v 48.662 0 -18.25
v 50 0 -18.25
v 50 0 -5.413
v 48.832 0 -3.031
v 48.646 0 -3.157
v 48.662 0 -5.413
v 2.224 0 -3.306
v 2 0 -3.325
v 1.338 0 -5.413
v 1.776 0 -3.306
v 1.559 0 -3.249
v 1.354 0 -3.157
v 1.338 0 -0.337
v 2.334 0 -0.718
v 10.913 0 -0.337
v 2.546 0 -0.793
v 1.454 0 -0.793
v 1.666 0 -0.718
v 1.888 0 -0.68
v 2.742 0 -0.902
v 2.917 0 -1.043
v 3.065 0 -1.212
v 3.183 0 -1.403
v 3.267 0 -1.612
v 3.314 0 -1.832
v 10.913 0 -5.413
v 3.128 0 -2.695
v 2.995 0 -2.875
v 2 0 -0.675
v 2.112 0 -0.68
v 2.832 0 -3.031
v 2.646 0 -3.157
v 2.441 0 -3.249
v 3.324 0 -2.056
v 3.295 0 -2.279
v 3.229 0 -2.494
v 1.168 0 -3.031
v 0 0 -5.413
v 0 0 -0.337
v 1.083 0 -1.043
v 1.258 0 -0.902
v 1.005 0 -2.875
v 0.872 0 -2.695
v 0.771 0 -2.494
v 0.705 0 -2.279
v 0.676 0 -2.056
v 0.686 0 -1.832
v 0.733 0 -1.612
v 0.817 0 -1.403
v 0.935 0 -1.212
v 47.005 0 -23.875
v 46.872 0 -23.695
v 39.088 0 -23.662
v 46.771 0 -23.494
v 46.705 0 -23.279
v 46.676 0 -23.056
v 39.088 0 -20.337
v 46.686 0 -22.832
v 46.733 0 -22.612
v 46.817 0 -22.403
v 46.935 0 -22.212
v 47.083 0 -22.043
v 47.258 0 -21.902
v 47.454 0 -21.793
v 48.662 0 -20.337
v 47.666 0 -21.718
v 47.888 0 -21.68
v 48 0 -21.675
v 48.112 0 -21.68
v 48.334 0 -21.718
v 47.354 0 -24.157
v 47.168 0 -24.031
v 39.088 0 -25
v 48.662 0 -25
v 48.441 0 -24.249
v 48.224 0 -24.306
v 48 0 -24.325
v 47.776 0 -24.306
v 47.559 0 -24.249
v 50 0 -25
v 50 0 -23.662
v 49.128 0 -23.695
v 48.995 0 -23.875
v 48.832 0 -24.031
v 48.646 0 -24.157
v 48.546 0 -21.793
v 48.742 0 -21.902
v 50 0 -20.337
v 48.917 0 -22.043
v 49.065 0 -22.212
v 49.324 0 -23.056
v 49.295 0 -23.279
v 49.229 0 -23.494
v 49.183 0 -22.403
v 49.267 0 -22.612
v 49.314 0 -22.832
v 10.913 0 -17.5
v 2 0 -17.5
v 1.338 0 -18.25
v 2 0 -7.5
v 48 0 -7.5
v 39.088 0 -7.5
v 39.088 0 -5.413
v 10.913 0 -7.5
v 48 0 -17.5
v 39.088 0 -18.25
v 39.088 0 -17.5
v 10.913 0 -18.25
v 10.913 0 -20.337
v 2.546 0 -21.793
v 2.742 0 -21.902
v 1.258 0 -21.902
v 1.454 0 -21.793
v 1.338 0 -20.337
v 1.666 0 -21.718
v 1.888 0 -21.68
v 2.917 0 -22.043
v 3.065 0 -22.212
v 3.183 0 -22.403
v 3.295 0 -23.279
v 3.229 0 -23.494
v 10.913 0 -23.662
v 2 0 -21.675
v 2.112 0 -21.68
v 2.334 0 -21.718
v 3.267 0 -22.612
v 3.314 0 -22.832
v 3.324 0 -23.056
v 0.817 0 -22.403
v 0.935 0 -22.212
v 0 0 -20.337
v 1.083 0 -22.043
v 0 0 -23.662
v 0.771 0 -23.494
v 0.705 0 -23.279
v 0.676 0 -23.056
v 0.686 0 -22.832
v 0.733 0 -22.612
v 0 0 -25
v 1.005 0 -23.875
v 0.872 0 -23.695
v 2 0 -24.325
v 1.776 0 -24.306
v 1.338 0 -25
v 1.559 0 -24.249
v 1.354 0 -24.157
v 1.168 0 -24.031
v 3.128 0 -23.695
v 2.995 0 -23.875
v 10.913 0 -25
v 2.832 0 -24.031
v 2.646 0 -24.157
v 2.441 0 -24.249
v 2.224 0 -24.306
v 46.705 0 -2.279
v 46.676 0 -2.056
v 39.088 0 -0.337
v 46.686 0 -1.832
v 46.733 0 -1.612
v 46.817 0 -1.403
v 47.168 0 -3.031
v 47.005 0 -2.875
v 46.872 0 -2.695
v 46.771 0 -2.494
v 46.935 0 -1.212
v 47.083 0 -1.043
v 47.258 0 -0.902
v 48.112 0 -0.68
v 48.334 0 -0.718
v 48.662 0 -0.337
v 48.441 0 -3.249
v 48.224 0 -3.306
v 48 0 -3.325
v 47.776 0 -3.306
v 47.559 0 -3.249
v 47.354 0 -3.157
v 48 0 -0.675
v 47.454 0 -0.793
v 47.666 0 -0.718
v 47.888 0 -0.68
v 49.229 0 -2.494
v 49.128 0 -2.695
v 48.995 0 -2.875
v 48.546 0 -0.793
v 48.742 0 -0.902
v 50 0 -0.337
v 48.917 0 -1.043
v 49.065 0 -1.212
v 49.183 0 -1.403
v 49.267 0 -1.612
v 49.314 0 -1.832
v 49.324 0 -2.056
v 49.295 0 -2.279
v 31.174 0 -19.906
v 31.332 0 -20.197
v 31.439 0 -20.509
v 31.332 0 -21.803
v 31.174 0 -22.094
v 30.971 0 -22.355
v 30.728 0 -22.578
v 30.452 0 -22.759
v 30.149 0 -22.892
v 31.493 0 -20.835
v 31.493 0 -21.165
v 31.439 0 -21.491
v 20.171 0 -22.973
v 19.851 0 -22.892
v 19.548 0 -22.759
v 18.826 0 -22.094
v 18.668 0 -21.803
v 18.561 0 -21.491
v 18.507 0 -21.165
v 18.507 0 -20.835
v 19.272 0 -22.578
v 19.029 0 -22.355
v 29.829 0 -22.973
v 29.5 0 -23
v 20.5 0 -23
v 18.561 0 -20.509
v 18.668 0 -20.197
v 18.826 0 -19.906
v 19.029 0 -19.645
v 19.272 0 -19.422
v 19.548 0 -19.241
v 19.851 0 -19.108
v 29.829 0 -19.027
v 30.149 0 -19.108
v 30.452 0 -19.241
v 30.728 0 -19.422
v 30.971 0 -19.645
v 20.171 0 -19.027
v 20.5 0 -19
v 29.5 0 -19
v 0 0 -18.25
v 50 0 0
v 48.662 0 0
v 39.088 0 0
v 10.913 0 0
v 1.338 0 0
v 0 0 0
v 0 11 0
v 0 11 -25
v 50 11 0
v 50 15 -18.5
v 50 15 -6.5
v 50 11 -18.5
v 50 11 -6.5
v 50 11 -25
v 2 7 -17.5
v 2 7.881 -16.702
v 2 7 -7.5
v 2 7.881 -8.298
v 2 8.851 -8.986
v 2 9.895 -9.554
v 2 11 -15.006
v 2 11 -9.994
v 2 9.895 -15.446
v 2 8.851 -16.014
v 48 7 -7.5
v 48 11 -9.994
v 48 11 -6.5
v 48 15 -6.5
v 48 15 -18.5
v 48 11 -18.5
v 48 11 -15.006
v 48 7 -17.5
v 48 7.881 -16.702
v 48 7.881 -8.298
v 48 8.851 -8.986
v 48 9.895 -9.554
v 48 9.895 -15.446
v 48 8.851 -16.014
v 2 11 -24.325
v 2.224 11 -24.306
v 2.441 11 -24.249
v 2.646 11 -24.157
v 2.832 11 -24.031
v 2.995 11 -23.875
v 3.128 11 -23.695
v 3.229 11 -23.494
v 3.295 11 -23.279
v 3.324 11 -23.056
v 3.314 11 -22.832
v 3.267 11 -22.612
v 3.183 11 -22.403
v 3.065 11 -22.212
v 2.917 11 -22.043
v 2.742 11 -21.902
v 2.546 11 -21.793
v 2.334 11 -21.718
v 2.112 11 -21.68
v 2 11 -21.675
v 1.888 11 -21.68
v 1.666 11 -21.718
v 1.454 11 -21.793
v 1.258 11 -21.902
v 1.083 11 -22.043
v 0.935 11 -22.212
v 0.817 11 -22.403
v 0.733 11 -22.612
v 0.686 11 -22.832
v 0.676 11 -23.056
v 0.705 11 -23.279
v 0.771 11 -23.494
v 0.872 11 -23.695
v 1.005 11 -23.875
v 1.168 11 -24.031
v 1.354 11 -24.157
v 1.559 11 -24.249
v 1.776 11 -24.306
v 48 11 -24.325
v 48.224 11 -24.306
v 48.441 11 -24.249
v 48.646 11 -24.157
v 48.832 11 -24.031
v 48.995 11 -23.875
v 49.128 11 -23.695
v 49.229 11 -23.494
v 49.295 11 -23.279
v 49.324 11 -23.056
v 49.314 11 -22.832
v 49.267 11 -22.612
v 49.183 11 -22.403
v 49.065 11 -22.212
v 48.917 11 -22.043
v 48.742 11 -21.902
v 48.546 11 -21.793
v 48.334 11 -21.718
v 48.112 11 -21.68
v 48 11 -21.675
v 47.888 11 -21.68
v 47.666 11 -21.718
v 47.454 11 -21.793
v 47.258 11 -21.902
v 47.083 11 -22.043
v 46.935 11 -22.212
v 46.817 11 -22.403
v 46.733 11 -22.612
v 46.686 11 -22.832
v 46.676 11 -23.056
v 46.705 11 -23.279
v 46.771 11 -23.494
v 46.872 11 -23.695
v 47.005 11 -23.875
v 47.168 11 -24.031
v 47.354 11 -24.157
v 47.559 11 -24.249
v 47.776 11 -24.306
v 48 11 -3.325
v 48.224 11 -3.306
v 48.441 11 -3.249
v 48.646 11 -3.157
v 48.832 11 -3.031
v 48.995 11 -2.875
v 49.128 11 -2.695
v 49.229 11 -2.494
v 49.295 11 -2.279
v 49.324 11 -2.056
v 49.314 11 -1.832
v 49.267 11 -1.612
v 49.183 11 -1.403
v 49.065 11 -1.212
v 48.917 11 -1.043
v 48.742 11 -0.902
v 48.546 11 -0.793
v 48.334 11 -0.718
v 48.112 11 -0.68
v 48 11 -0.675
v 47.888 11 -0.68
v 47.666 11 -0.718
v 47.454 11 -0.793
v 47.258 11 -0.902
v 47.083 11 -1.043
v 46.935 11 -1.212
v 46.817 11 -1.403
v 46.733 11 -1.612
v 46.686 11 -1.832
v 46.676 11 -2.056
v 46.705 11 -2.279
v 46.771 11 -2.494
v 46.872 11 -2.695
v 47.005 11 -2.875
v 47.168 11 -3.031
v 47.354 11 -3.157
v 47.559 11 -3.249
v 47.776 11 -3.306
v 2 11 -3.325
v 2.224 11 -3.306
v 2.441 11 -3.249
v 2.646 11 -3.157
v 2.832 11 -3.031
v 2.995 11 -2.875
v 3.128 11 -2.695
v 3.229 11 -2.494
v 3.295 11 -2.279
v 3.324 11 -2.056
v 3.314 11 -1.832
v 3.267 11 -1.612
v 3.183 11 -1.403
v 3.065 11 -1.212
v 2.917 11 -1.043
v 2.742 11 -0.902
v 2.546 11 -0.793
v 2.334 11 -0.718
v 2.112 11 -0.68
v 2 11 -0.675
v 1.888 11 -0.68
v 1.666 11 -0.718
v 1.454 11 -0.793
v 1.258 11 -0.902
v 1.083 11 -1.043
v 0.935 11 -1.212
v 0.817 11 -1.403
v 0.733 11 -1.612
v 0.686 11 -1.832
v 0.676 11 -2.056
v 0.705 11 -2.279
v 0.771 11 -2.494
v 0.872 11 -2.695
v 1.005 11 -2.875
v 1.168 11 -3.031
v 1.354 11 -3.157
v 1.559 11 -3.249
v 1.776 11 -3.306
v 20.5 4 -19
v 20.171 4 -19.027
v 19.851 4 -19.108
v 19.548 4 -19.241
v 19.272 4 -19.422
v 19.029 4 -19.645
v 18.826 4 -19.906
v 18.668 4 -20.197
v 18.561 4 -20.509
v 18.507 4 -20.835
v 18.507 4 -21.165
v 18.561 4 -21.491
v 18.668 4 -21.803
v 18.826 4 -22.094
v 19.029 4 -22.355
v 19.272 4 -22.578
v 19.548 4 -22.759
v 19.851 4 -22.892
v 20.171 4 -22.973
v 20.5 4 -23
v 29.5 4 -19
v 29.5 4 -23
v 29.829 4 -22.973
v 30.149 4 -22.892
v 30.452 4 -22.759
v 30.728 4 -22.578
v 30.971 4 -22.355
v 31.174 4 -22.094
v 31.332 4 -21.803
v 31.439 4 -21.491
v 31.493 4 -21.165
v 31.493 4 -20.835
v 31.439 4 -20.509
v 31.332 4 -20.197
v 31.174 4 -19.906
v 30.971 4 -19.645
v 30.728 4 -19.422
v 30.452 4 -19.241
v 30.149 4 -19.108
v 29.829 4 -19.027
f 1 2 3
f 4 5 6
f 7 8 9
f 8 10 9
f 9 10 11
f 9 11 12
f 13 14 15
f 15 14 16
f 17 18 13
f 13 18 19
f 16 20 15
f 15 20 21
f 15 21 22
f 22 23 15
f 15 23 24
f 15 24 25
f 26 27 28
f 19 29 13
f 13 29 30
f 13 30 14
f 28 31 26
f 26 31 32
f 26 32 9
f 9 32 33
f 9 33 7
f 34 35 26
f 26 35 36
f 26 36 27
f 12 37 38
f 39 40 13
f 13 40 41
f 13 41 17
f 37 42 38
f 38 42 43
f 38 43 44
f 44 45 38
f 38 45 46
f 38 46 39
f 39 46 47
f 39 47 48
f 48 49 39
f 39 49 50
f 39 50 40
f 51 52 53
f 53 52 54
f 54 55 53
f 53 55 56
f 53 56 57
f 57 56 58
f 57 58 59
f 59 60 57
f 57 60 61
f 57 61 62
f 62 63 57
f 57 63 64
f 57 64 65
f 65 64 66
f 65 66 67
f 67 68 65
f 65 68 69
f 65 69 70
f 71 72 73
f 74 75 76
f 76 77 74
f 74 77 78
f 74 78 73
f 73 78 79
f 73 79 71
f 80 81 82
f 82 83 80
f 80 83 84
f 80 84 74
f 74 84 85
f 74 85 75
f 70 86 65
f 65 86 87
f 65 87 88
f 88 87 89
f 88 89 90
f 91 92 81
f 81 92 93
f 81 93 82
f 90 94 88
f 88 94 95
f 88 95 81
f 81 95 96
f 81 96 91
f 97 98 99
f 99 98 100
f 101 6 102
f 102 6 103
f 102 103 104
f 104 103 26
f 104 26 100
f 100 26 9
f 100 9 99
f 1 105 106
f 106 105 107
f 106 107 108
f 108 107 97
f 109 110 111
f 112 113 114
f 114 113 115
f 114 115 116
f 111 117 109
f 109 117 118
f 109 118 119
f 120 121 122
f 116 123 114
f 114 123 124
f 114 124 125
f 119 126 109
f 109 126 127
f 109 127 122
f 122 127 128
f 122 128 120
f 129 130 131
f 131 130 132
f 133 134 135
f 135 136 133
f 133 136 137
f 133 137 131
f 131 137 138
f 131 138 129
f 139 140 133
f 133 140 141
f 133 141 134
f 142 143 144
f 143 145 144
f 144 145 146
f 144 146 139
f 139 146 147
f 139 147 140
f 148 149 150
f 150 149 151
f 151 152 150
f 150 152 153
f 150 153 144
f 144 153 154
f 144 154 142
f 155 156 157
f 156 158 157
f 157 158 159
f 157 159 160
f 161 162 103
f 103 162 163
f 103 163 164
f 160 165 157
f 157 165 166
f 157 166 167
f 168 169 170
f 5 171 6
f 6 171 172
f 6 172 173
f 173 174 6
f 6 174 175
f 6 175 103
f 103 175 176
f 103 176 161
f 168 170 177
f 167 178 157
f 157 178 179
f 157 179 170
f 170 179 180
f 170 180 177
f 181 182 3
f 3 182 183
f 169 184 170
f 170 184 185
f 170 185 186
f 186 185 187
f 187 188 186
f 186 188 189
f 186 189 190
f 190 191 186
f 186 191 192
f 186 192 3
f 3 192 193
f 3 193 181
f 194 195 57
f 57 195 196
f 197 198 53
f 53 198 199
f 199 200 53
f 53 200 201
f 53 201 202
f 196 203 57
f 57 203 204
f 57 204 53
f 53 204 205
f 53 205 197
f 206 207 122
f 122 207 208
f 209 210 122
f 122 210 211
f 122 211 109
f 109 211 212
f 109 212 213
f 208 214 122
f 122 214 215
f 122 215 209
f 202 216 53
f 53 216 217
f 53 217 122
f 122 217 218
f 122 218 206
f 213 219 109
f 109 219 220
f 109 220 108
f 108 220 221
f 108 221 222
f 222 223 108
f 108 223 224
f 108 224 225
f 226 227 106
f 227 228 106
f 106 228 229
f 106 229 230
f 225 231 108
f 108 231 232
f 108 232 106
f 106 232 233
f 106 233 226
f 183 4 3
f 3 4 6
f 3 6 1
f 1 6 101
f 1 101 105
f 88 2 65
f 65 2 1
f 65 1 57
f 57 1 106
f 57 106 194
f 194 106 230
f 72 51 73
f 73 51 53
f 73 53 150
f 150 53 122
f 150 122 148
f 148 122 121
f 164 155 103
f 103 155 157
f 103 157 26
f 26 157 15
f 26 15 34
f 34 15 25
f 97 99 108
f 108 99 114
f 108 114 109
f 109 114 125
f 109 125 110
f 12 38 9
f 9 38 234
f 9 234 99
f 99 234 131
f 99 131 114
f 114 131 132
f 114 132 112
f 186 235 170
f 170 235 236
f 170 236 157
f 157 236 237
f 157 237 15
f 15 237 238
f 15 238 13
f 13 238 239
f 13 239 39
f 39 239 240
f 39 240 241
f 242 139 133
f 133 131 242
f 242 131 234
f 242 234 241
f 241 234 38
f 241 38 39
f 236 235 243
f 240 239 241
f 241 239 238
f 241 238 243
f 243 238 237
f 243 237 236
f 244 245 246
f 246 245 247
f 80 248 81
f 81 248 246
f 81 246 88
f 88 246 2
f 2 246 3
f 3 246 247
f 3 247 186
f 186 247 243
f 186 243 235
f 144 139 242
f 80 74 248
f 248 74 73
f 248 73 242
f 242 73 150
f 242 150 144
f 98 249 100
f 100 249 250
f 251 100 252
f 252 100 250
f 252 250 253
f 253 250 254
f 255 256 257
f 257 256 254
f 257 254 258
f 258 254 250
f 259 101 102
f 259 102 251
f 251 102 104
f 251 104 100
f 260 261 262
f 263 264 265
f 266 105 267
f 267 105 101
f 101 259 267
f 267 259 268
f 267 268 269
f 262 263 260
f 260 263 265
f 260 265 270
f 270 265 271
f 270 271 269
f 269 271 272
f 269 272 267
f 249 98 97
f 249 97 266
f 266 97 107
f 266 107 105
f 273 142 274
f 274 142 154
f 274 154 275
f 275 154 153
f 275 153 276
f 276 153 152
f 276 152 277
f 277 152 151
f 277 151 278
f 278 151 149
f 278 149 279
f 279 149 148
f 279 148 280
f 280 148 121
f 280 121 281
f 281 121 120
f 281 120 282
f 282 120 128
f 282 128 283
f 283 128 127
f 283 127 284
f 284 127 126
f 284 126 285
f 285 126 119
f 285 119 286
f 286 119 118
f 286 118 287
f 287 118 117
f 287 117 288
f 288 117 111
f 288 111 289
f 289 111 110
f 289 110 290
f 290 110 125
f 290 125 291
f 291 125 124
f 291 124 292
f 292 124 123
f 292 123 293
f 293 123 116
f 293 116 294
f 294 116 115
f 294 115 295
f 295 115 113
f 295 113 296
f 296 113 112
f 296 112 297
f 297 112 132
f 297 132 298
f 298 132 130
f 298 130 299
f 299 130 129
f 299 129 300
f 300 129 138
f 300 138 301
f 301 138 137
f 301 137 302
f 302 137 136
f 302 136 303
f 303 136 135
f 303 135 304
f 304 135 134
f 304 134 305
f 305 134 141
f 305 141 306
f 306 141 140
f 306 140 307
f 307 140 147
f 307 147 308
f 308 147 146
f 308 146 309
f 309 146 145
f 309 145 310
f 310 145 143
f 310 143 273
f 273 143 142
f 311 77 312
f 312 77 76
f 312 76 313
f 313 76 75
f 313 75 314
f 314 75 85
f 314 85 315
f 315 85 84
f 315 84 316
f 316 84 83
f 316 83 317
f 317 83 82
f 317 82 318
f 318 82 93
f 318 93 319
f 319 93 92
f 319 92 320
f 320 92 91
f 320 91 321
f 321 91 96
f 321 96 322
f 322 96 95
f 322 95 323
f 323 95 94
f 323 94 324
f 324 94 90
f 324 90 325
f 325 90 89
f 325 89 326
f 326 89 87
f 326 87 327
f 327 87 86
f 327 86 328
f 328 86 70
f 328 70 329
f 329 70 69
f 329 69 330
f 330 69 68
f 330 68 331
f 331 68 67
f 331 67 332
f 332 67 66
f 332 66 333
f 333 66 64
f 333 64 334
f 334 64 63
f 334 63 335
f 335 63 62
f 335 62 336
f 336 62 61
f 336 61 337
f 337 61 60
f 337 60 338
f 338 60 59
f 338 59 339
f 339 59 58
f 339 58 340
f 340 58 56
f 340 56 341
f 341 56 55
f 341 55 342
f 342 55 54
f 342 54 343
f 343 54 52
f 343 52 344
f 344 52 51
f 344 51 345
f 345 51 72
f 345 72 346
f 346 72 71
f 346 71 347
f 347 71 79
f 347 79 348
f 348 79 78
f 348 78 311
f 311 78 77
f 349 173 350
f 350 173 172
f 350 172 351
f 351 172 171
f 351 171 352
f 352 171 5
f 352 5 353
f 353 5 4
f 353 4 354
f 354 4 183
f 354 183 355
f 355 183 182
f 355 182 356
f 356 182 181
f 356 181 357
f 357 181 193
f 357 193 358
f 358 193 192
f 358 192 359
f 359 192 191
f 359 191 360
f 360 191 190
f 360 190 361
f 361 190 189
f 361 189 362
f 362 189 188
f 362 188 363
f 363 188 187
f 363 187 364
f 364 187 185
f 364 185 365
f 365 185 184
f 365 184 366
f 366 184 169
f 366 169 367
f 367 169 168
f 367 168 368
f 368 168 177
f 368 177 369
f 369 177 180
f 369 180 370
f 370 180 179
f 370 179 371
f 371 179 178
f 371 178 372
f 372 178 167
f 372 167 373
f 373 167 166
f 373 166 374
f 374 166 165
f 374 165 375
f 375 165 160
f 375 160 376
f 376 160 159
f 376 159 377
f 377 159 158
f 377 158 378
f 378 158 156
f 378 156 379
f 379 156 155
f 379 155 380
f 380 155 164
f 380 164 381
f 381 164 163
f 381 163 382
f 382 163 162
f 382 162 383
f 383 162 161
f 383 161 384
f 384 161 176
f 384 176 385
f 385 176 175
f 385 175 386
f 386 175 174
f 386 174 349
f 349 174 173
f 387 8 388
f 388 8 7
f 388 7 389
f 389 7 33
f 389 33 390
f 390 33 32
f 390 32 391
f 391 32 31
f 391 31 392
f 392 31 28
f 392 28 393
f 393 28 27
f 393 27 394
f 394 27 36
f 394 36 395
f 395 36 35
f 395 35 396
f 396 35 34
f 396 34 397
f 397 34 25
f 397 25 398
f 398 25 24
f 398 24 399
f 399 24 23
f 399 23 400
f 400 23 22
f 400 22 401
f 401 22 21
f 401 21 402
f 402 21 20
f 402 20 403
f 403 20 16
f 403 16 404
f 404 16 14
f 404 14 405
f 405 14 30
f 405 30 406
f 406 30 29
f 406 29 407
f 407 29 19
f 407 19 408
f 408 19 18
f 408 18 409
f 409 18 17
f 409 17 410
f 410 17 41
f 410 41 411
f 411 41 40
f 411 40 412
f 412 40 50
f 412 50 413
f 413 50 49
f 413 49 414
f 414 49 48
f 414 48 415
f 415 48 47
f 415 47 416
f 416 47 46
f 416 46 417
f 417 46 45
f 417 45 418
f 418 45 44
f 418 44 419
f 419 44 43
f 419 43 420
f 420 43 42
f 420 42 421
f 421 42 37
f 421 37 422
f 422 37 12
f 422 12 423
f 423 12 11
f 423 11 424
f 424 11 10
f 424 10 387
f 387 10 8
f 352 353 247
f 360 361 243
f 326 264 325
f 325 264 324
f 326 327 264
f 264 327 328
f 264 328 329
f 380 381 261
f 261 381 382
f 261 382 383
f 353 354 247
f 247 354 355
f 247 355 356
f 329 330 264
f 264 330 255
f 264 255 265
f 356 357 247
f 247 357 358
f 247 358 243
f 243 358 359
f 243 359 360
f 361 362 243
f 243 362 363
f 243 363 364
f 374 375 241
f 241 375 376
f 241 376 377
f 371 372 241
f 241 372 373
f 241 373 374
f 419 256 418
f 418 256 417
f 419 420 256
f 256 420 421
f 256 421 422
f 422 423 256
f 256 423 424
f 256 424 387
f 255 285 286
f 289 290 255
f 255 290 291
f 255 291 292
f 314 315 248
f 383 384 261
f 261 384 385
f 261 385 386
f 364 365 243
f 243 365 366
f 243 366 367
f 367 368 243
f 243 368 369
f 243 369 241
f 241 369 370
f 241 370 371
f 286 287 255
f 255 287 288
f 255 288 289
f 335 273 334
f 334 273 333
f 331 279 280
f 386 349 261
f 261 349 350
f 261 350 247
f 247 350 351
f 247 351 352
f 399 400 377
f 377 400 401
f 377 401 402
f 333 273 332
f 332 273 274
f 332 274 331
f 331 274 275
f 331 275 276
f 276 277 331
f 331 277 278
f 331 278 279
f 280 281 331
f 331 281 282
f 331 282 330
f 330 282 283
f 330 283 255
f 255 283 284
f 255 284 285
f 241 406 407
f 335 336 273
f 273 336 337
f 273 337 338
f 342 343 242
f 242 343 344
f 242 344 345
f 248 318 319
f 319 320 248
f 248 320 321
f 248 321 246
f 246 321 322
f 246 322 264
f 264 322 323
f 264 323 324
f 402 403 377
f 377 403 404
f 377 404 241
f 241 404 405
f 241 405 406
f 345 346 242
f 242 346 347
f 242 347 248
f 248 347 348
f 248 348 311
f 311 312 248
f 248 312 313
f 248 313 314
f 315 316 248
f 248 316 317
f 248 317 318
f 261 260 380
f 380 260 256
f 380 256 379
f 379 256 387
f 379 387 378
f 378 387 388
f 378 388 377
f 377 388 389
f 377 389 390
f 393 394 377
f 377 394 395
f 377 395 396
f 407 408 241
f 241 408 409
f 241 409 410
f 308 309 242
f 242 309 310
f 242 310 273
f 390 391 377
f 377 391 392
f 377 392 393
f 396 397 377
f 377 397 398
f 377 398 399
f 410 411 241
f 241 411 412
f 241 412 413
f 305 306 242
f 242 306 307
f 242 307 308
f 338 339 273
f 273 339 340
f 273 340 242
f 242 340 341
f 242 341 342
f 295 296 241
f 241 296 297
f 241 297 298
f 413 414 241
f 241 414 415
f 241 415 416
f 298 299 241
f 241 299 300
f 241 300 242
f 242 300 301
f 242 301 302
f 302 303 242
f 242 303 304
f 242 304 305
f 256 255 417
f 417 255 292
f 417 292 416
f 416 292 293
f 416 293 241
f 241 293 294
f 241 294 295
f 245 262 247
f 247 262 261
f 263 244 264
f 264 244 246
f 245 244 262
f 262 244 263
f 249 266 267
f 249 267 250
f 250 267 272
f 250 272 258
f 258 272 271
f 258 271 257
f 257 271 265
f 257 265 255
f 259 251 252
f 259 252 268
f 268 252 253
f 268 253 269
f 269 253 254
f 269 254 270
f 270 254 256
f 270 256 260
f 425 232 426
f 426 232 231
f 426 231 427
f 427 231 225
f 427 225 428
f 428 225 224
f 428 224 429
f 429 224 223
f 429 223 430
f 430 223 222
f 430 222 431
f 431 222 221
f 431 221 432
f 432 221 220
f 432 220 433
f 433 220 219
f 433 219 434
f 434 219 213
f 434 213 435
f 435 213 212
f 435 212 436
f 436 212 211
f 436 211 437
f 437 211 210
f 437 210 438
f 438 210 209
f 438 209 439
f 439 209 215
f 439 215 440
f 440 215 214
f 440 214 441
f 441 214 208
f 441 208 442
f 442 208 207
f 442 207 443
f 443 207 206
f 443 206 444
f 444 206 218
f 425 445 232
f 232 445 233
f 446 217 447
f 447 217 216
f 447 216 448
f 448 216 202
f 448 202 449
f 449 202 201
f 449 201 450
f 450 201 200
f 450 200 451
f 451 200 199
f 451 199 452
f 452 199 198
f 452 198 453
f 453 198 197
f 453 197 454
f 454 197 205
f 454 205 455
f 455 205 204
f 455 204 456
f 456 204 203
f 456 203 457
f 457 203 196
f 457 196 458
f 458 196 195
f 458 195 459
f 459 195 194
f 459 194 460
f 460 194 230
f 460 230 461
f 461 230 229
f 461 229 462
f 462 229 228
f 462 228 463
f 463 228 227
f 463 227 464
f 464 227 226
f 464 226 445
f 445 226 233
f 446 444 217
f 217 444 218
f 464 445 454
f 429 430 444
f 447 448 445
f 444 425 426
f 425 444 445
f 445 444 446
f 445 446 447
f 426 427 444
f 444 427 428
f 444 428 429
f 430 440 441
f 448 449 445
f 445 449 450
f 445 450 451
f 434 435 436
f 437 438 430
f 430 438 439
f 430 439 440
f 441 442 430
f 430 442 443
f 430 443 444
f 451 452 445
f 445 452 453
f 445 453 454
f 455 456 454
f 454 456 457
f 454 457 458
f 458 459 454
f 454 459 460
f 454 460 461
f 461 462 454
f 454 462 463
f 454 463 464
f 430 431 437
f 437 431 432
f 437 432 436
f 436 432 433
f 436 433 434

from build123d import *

# Parameters (mm, degrees)
SKETCH1_W           = 50
SKETCH1_H           = 25
SKETCH1_R           = 1.325
SKETCH1_W_2         = 46
SKETCH1_H_2         = 10
BOSS_EXTRUDE1_DEPTH = 7
SKETCH2_W           = 50
SKETCH2_H           = 25
SKETCH2_R           = 1.325
SKETCH2_W_2         = 46
SKETCH2_H_2         = 4
BOSS_EXTRUDE2_DEPTH = 4
SKETCH3_W           = 2
SKETCH3_H           = 12
BOSS_EXTRUDE3_DEPTH = 4
FILLET1_R           = 10
FILLET2_R           = 10
CUT_EXTRUDE1_DEPTH  = 4


with BuildPart() as part:
    # Sketch1 → Boss-Extrude1 (new body)
    with BuildSketch(Plane(origin=(0, 0, 0), x_dir=(1, 0, 0), z_dir=(0, 1, 0))):
        with Locations((25, 12.5)):
            Rectangle(SKETCH1_W, SKETCH1_H)
        with Locations(Location((2, 23, 0), (0, 0, 270))):
            Circle(SKETCH1_R, mode=Mode.SUBTRACT)
        with Locations(Location((48, 23, 0), (0, 0, 270))):
            Circle(SKETCH1_R, mode=Mode.SUBTRACT)
        with Locations(Location((48, 2, 0), (0, 0, 270))):
            Circle(SKETCH1_R, mode=Mode.SUBTRACT)
        with Locations(Location((2, 2, 0), (0, 0, 270))):
            Circle(SKETCH1_R, mode=Mode.SUBTRACT)
        with Locations((25, 12.5)):
            Rectangle(SKETCH1_W_2, SKETCH1_H_2, mode=Mode.SUBTRACT)
    extrude(amount=BOSS_EXTRUDE1_DEPTH)

    # Sketch2 → Boss-Extrude2 (add)
    with BuildSketch(Plane(origin=(0, 7, 0), x_dir=(1, 0, 0), z_dir=(0, 1, 0))):
        with Locations((25, 12.5)):
            Rectangle(SKETCH2_W, SKETCH2_H)
        with Locations(Location((2, 23, 0), (0, 0, 270))):
            Circle(SKETCH2_R, mode=Mode.SUBTRACT)
        with Locations(Location((48, 23, 0), (0, 0, 270))):
            Circle(SKETCH2_R, mode=Mode.SUBTRACT)
        with Locations(Location((48, 2, 0), (0, 0, 270))):
            Circle(SKETCH2_R, mode=Mode.SUBTRACT)
        with Locations(Location((2, 2, 0), (0, 0, 270))):
            Circle(SKETCH2_R, mode=Mode.SUBTRACT)
        with Locations((25, 12.5)):
            Rectangle(SKETCH2_W_2, SKETCH2_H_2, mode=Mode.SUBTRACT)
    extrude(amount=BOSS_EXTRUDE2_DEPTH)

    # Sketch3 → Boss-Extrude3 (add)
    with BuildSketch(Plane(origin=(0, 11, 0), x_dir=(1, 0, 0), z_dir=(0, 1, 0))):
        with Locations((49, 12.5)):
            Rectangle(SKETCH3_W, SKETCH3_H)
    extrude(amount=BOSS_EXTRUDE3_DEPTH)

    # Fillet1
    # the kernel refuses this fillet: 10 mm, written as the material it takes off along each edge
    with BuildSketch(Plane(origin=(2, 7, -14.5), x_dir=(0, 1, 0), z_dir=(1, 0, 0))) as fillet1_piece_1:
        with BuildLine():
            CenterArc((7.141428429, -10), FILLET1_R, 90, 45.572995999)
            Line((0, -3), (0, 0))
            Line((0, 0), (7.141428429, 0))
        make_face()
    extrude(amount=46, mode=Mode.SUBTRACT)

    # Fillet2
    # the kernel refuses this fillet: 10 mm, written as the material it takes off along each edge
    with BuildSketch(Plane(origin=(48, 7, -10.5), x_dir=(0, 1, 0), z_dir=(-1, 0, 0))) as fillet2_piece_1:
        with BuildLine():
            CenterArc((7.141428429, -10), FILLET2_R, 90, 45.572995999)
            Line((0, -3), (0, 0))
            Line((0, 0), (7.141428429, 0))
        make_face()
    extrude(amount=46, mode=Mode.SUBTRACT)

    # Sketch6 → Cut-Extrude1 (cut)
    with BuildSketch(Plane(origin=(0, 0, 0), x_dir=(-1, 0, 0), z_dir=(0, -1, 0))):
        with BuildLine():
            Line((-20.5, 19), (-29.5, 19))
            ThreePointArc((-29.5, 19), (-31.5, 21), (-29.5, 23))
            Line((-29.5, 23), (-20.5, 23))
            ThreePointArc((-20.5, 23), (-18.5, 21), (-20.5, 19))
        make_face()
    extrude(amount=-CUT_EXTRUDE1_DEPTH, mode=Mode.SUBTRACT)


solid = part.part
